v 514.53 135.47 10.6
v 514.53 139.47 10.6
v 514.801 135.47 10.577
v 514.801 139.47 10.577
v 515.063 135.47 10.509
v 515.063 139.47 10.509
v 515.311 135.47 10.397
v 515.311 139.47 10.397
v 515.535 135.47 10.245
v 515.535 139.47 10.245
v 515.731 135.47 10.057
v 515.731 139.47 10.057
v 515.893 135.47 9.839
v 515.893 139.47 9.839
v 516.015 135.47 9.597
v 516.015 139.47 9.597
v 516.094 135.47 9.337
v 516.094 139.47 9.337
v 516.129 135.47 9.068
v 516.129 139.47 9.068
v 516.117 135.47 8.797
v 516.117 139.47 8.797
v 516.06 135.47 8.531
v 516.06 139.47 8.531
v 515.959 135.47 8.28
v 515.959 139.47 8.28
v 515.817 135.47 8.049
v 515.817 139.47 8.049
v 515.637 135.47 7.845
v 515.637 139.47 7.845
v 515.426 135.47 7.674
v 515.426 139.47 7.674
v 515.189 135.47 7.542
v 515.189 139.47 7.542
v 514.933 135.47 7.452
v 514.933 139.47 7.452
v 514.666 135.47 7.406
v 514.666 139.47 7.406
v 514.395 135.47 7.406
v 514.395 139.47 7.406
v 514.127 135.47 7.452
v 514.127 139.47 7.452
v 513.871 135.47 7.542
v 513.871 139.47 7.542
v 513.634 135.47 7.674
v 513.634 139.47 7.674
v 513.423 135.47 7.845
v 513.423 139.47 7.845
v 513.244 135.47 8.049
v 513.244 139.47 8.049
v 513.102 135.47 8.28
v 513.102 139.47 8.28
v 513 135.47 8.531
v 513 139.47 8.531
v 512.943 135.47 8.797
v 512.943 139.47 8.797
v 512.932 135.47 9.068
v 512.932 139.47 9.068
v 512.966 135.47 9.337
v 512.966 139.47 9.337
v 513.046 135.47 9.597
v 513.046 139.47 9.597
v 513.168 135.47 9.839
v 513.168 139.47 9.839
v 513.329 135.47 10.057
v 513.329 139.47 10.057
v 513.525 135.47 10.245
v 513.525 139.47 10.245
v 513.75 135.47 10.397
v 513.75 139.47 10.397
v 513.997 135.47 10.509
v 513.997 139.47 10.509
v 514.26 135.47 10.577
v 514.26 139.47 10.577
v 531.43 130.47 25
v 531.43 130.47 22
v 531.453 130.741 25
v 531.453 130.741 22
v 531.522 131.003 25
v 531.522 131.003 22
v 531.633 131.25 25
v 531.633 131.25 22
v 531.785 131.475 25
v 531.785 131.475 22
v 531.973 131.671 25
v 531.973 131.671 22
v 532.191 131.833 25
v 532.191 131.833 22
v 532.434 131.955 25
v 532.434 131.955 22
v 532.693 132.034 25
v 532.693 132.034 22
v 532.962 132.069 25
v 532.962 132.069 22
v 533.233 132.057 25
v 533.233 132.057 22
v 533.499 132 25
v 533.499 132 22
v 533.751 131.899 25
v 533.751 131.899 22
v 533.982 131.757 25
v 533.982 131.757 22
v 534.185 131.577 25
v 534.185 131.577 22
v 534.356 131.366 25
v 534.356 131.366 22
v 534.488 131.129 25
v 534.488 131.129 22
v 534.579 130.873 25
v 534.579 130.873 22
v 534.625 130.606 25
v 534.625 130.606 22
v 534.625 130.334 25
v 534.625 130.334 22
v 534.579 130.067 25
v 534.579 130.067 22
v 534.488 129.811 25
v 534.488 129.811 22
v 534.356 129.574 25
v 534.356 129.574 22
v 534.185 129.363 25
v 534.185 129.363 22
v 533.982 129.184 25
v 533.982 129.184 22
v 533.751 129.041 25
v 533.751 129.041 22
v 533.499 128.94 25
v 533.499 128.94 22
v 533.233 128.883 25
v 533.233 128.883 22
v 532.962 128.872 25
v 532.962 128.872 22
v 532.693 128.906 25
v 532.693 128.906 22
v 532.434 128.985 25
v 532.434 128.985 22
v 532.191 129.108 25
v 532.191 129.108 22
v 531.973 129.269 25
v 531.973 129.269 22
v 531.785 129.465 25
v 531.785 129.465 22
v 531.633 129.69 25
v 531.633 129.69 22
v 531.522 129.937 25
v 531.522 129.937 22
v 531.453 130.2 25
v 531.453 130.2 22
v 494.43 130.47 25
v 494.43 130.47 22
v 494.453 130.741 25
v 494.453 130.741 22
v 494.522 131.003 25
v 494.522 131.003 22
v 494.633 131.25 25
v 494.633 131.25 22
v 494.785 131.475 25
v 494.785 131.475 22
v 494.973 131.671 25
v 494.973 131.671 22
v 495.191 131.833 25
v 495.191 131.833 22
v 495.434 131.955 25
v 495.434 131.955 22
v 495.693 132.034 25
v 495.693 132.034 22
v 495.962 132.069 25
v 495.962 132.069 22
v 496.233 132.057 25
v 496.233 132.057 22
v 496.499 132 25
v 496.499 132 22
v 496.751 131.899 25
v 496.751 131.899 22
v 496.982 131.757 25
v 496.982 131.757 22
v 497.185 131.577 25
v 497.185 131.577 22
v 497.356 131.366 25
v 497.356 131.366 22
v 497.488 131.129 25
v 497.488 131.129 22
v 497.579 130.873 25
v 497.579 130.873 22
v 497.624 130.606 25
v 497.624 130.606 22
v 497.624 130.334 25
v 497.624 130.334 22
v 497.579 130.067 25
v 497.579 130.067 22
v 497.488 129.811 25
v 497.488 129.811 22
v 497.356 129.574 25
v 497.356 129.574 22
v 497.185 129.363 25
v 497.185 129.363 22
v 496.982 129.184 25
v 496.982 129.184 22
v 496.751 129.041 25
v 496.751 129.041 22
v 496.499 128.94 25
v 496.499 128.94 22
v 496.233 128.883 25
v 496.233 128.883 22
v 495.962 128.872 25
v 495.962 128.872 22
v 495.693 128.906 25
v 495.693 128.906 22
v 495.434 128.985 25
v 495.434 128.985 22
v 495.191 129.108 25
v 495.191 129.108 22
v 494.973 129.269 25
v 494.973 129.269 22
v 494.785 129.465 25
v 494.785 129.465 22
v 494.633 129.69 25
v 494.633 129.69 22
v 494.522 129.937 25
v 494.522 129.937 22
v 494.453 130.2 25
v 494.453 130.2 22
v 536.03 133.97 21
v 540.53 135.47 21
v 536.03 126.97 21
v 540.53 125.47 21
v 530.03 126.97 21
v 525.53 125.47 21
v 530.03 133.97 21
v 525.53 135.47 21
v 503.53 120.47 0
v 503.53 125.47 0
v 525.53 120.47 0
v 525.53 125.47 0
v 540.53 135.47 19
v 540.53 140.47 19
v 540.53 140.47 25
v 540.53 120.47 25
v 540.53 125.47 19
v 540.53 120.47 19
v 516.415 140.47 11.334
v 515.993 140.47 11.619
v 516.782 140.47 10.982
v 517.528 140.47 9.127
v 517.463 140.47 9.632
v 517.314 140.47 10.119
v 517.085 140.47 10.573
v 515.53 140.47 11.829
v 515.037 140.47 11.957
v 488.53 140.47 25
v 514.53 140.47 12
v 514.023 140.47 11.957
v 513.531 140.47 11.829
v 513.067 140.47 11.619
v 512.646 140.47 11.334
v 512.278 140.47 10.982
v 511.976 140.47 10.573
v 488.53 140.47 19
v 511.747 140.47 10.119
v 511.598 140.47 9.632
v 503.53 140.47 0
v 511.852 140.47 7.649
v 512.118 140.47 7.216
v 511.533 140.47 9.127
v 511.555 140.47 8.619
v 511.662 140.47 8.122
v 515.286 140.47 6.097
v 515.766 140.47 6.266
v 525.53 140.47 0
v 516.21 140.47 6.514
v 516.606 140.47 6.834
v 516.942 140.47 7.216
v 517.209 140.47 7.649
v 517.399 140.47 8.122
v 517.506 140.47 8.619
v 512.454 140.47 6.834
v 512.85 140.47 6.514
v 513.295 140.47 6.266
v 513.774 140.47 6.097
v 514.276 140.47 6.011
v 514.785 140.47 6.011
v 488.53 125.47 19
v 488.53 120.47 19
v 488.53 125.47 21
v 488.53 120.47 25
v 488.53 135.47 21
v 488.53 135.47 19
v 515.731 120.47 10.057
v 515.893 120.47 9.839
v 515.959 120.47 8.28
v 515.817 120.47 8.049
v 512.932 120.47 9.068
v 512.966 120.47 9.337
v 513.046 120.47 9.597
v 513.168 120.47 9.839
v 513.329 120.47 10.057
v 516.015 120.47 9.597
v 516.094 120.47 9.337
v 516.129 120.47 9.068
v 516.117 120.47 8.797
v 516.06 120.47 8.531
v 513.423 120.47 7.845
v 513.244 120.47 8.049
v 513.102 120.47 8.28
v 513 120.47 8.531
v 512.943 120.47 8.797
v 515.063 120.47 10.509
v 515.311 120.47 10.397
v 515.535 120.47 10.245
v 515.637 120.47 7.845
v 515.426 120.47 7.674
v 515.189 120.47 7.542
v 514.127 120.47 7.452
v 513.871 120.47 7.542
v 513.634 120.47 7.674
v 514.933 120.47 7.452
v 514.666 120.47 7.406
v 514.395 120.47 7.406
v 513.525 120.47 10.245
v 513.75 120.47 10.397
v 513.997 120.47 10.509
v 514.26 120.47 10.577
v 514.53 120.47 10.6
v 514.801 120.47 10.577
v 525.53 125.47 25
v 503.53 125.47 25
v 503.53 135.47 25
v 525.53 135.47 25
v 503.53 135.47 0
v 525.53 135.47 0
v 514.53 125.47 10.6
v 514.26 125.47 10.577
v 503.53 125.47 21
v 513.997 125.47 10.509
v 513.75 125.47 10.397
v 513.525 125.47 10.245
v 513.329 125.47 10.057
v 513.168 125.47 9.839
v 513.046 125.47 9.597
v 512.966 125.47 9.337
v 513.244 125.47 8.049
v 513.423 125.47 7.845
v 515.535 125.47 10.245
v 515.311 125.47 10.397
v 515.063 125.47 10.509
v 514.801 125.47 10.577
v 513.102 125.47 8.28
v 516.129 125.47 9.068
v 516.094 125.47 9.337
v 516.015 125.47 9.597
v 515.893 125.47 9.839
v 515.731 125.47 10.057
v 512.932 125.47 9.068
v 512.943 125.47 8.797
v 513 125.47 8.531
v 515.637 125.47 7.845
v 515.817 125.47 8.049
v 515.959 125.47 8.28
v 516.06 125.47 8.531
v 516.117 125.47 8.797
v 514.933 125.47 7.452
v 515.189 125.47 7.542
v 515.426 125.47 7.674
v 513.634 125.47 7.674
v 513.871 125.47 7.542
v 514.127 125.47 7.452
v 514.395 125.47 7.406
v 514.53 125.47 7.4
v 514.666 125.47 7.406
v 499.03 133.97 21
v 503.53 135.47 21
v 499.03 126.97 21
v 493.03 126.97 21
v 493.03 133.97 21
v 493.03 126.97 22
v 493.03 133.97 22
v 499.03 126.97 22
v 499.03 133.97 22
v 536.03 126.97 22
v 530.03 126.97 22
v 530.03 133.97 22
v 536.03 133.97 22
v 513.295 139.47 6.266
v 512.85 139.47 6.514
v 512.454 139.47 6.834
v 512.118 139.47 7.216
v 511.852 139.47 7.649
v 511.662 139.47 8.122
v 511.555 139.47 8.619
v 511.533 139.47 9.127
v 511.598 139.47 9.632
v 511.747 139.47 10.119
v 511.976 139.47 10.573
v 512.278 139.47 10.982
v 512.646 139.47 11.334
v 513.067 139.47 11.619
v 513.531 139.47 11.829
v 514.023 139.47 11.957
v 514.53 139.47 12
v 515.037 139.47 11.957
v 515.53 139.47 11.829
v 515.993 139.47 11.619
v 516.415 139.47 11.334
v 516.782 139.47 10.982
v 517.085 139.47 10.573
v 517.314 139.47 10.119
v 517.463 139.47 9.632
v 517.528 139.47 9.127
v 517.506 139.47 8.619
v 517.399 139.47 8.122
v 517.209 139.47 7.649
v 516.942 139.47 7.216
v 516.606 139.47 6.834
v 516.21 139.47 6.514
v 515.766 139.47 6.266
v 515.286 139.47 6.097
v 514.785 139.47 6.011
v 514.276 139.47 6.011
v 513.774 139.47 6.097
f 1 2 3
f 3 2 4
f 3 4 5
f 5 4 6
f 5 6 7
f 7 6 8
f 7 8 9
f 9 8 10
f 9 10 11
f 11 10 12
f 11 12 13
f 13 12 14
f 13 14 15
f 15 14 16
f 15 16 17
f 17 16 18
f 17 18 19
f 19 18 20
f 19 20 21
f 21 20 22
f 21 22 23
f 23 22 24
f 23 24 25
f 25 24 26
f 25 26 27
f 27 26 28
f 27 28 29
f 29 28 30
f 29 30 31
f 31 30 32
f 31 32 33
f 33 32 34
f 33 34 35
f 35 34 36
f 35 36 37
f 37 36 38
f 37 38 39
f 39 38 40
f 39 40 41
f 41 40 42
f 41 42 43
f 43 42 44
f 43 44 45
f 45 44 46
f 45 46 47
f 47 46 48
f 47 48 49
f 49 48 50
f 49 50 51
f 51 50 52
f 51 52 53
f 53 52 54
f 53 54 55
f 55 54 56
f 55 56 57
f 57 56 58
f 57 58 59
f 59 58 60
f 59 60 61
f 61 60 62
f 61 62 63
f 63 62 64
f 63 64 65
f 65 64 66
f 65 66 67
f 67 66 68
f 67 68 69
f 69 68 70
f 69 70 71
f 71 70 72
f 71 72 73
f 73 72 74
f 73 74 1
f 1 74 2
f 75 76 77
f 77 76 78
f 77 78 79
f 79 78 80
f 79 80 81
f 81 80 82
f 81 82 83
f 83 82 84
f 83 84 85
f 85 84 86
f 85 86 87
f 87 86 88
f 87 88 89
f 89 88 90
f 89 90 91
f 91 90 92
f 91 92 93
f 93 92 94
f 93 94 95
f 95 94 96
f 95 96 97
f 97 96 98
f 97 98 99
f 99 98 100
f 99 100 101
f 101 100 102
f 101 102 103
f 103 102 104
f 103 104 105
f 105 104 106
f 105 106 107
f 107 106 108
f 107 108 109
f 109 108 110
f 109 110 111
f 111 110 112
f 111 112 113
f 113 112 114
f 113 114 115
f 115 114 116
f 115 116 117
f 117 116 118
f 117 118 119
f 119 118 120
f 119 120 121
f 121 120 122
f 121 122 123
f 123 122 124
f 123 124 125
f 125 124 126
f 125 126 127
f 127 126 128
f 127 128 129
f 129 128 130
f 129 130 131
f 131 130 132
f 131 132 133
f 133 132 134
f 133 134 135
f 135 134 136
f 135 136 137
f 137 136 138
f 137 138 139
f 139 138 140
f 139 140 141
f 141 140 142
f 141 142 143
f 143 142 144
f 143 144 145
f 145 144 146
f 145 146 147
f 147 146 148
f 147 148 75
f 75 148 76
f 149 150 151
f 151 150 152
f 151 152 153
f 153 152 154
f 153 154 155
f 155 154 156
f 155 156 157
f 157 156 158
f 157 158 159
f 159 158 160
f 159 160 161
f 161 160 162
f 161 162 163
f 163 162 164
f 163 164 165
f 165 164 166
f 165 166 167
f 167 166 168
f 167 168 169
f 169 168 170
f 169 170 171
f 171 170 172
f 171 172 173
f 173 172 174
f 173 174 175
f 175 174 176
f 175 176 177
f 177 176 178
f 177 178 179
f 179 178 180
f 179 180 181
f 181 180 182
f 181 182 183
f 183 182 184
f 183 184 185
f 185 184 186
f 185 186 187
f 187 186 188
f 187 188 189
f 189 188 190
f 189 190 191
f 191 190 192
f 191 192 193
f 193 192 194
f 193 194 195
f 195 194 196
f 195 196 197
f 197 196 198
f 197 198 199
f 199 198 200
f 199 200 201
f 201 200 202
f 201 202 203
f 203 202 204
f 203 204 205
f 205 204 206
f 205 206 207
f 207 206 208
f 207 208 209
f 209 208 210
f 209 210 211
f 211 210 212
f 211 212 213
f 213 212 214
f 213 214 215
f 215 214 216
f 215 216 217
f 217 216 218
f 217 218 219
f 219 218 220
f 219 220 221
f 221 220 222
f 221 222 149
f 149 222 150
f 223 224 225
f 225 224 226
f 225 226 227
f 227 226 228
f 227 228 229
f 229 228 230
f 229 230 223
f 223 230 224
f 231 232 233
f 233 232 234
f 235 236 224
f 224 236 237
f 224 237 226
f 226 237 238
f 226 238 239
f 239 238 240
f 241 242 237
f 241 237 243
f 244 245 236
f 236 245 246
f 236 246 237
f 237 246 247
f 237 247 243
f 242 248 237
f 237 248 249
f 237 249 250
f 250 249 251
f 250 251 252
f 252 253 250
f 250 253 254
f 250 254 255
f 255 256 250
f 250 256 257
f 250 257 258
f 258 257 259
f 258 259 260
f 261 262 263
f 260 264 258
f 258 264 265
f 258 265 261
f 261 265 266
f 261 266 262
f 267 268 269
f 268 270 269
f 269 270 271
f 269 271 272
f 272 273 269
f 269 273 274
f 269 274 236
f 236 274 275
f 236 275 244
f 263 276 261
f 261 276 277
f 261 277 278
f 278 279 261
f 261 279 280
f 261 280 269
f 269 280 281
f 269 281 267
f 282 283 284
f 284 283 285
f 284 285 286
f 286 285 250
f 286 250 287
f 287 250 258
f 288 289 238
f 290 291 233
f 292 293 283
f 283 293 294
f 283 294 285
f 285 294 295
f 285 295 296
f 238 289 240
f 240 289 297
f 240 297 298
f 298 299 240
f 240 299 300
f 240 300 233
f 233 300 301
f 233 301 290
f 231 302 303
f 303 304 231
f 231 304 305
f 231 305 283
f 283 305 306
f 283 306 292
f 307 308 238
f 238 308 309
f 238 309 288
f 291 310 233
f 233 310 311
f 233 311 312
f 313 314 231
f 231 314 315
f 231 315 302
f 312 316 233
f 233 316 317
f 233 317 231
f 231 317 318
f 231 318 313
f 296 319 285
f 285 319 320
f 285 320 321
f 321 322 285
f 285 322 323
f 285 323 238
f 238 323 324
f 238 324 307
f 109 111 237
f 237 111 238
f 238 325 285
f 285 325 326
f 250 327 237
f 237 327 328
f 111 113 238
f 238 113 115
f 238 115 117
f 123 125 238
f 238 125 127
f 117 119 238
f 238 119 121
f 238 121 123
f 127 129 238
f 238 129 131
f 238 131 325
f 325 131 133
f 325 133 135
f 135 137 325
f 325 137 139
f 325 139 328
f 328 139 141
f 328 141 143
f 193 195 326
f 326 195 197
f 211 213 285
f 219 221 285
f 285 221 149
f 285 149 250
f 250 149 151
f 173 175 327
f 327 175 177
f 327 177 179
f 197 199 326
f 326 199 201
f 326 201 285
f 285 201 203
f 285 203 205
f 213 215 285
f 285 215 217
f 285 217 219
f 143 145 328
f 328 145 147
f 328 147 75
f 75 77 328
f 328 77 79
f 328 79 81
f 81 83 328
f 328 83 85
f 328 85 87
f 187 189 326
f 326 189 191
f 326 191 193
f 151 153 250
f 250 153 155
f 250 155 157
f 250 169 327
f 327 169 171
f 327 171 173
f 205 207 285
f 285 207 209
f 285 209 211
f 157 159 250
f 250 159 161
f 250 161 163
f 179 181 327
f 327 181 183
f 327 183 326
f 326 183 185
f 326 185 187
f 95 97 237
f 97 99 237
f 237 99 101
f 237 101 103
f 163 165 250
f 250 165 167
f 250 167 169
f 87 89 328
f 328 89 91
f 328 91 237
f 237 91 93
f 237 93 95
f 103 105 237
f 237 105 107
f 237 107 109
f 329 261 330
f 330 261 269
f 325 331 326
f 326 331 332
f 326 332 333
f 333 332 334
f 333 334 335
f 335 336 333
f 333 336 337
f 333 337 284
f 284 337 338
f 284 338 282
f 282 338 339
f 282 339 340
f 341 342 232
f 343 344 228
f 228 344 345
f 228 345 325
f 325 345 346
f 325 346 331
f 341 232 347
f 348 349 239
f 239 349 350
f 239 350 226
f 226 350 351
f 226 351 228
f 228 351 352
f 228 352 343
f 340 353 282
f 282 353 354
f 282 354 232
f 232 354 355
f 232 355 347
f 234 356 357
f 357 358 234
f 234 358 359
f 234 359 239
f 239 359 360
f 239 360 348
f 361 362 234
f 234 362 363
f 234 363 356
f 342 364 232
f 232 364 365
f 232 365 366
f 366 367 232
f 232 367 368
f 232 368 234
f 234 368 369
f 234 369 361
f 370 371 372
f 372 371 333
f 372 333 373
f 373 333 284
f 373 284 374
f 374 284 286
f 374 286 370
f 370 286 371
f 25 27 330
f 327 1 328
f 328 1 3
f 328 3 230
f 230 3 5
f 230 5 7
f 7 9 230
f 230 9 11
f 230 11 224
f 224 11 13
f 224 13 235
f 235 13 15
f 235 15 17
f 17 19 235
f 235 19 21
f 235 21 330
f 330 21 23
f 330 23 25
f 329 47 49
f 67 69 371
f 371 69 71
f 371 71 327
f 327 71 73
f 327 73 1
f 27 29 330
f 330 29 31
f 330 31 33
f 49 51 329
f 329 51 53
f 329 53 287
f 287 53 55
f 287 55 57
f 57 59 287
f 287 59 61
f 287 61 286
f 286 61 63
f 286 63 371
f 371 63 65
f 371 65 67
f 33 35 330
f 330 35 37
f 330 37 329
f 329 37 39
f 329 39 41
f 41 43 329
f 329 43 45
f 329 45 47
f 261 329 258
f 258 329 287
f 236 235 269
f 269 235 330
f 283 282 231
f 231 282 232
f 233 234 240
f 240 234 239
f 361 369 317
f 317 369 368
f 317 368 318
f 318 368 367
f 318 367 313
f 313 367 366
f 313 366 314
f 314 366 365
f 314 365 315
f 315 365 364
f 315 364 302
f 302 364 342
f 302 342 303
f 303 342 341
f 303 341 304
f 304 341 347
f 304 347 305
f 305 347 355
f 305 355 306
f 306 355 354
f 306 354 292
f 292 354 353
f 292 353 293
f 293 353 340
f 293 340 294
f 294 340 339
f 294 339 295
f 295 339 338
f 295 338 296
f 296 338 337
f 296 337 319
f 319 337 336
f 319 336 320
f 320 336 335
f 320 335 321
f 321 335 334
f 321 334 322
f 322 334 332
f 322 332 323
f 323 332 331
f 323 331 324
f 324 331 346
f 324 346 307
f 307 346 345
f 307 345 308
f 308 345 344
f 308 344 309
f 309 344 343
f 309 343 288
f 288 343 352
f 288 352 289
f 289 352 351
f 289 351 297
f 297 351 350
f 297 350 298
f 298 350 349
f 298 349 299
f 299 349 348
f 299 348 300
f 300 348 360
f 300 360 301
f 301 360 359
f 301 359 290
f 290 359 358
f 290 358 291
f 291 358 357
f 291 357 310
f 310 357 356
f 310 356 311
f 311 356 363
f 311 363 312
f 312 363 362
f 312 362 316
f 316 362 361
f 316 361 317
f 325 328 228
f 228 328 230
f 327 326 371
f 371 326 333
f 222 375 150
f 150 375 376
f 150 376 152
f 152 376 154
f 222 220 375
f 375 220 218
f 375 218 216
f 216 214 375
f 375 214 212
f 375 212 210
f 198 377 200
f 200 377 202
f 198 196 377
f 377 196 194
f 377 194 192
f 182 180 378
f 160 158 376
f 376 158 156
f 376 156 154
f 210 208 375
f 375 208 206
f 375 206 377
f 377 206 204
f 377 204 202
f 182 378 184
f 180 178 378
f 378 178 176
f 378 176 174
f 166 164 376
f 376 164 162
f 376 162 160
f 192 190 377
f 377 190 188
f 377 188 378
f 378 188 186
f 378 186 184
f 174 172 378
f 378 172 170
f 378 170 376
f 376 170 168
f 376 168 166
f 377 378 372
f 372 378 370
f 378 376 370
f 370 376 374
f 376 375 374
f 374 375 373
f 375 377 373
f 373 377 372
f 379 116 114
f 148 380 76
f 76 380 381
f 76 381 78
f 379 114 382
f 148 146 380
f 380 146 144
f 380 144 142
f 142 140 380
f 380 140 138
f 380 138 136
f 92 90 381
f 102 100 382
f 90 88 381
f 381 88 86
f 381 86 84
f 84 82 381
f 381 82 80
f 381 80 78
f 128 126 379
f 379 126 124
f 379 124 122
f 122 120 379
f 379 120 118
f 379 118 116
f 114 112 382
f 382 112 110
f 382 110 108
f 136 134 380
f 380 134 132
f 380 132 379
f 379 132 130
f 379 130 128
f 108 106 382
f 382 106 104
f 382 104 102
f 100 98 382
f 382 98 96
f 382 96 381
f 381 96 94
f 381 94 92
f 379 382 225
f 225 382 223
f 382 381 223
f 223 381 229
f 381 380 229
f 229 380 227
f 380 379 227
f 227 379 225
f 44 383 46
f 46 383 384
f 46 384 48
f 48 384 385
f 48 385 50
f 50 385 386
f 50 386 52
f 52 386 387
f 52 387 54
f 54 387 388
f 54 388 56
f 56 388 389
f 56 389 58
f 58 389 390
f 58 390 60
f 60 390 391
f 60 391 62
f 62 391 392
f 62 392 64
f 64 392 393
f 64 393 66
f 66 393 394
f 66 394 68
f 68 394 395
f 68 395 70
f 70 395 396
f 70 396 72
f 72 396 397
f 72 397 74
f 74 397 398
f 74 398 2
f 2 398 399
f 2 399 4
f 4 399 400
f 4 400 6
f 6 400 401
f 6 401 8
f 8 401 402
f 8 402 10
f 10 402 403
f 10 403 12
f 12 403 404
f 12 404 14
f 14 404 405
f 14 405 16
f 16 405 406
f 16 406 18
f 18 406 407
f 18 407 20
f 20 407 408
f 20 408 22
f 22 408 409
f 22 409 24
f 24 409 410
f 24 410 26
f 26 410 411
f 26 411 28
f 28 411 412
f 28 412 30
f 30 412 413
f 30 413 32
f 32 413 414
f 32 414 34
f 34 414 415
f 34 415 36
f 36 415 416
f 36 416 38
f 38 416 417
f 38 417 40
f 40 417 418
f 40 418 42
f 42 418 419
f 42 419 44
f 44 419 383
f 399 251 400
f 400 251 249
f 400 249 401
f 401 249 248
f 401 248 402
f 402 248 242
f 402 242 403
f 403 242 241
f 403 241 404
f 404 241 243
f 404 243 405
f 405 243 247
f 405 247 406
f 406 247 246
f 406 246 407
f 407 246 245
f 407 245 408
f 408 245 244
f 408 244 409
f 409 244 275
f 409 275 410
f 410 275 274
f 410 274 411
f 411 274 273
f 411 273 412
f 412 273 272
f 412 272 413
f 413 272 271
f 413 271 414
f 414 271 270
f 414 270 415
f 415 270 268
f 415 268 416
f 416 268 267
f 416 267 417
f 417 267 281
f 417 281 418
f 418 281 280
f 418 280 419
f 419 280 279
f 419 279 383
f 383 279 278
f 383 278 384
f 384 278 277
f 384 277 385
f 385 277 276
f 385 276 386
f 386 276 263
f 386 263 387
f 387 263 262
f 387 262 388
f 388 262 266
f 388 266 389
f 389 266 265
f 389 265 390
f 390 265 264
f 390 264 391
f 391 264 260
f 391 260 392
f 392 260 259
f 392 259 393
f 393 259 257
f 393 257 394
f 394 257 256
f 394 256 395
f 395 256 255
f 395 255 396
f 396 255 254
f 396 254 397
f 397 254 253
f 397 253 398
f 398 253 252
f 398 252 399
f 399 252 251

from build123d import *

# Parameters (mm, degrees)
SKETCH1_W           = 52
SKETCH1_H           = 20
BOSS_EXTRUDE1_DEPTH = 25
SKETCH2_W           = 21
SKETCH2_H           = 10
CUT_EXTRUDE1_DEPTH  = 152.858008365
CUT_EXTRUDE2_DEPTH  = 542.477569293
SKETCH4_R           = 1.6
CUT_EXTRUDE3_DEPTH  = 542.477569293
SKETCH5_W           = 22
SKETCH5_H           = 10
CUT_EXTRUDE4_DEPTH  = 4
SKETCH6_R           = 1.6
CUT_EXTRUDE5_DEPTH  = 4
SKETCH7_W           = 6
SKETCH7_H           = 7
CUT_EXTRUDE6_DEPTH  = 1
SKETCH8_W           = 6
SKETCH8_H           = 7
CUT_EXTRUDE7_DEPTH  = 1
SKETCH9_R           = 3
CUT_EXTRUDE8_DEPTH  = 1


with BuildPart() as part:
    # Sketch1 → Boss-Extrude1 (new body)
    with BuildSketch(Plane.XY):
        with Locations((514.530256366, 130.470120327)):
            Rectangle(SKETCH1_W, SKETCH1_H)
    extrude(amount=BOSS_EXTRUDE1_DEPTH)

    # Sketch2 → Cut-Extrude1 (cut, through all)
    with BuildSketch(Plane(origin=(540.530256366, 0, 0), x_dir=(0, 0, -1), z_dir=(1, 0, 0))):
        with Locations((-10.5, 130.470120327)):
            Rectangle(SKETCH2_W, SKETCH2_H)
    extrude(amount=-CUT_EXTRUDE1_DEPTH, mode=Mode.SUBTRACT)

    # Sketch3 → Cut-Extrude2 (cut, through all)
    with BuildSketch(Plane(origin=(0, 140.470120327, 0), x_dir=(1, 0, 0), z_dir=(0, 1, 0))):
        Polygon((488.530256366, -19), (503.530256366, 0), (525.530256366, 0), (540.530256366, -19), (550.000331081, -19), (550.000331081, 5.4233188), (484.277494653, 5.4233188), (484.277494653, -19), align=None)
    extrude(amount=-CUT_EXTRUDE2_DEPTH, mode=Mode.SUBTRACT)

    # Sketch4 → Cut-Extrude3 (cut, through all)
    with BuildSketch(Plane(origin=(0, 140.470120327, 0), x_dir=(1, 0, 0), z_dir=(0, 1, 0))):
        with Locations(Location((514.530256366, -9, 0), (0, 0, 270))):
            Circle(SKETCH4_R)
    extrude(amount=-CUT_EXTRUDE3_DEPTH, mode=Mode.SUBTRACT)

    # Sketch5 → Cut-Extrude4 (cut)
    with BuildSketch(Plane(origin=(0, 0, 21), x_dir=(-1, 0, 0), z_dir=(0, 0, -1))):
        with Locations((-514.530256366, 130.470120327)):
            Rectangle(SKETCH5_W, SKETCH5_H)
    extrude(amount=-CUT_EXTRUDE4_DEPTH, mode=Mode.SUBTRACT)

    # Sketch6 → Cut-Extrude5 (cut)
    with BuildSketch(Plane(origin=(0, 0, 21), x_dir=(-1, 0, 0), z_dir=(0, 0, -1))):
        with Locations((-533.030256366, 130.470120327)):
            Circle(SKETCH6_R)
        with Locations((-496.030256366, 130.470120327)):
            Circle(SKETCH6_R)
    extrude(amount=-CUT_EXTRUDE5_DEPTH, mode=Mode.SUBTRACT)

    # Sketch7 → Cut-Extrude6 (cut)
    with BuildSketch(Plane(origin=(0, 0, 21), x_dir=(-1, 0, 0), z_dir=(0, 0, -1))):
        with Locations((-496.030256366, 130.470120327)):
            Rectangle(SKETCH7_W, SKETCH7_H)
    extrude(amount=-CUT_EXTRUDE6_DEPTH, mode=Mode.SUBTRACT)

    # Sketch8 → Cut-Extrude7 (cut)
    with BuildSketch(Plane(origin=(0, 0, 21), x_dir=(-1, 0, 0), z_dir=(0, 0, -1))):
        with Locations((-533.030256366, 130.470120327)):
            Rectangle(SKETCH8_W, SKETCH8_H)
    extrude(amount=-CUT_EXTRUDE7_DEPTH, mode=Mode.SUBTRACT)

    # Sketch9 → Cut-Extrude8 (cut)
    with BuildSketch(Plane(origin=(0, 140.470120327, 0), x_dir=(1, 0, 0), z_dir=(0, 1, 0))):
        with Locations(Location((514.530256366, -9, 0), (0, 0, 270))):
            Circle(SKETCH9_R)
    extrude(amount=-CUT_EXTRUDE8_DEPTH, mode=Mode.SUBTRACT)


solid = part.part
